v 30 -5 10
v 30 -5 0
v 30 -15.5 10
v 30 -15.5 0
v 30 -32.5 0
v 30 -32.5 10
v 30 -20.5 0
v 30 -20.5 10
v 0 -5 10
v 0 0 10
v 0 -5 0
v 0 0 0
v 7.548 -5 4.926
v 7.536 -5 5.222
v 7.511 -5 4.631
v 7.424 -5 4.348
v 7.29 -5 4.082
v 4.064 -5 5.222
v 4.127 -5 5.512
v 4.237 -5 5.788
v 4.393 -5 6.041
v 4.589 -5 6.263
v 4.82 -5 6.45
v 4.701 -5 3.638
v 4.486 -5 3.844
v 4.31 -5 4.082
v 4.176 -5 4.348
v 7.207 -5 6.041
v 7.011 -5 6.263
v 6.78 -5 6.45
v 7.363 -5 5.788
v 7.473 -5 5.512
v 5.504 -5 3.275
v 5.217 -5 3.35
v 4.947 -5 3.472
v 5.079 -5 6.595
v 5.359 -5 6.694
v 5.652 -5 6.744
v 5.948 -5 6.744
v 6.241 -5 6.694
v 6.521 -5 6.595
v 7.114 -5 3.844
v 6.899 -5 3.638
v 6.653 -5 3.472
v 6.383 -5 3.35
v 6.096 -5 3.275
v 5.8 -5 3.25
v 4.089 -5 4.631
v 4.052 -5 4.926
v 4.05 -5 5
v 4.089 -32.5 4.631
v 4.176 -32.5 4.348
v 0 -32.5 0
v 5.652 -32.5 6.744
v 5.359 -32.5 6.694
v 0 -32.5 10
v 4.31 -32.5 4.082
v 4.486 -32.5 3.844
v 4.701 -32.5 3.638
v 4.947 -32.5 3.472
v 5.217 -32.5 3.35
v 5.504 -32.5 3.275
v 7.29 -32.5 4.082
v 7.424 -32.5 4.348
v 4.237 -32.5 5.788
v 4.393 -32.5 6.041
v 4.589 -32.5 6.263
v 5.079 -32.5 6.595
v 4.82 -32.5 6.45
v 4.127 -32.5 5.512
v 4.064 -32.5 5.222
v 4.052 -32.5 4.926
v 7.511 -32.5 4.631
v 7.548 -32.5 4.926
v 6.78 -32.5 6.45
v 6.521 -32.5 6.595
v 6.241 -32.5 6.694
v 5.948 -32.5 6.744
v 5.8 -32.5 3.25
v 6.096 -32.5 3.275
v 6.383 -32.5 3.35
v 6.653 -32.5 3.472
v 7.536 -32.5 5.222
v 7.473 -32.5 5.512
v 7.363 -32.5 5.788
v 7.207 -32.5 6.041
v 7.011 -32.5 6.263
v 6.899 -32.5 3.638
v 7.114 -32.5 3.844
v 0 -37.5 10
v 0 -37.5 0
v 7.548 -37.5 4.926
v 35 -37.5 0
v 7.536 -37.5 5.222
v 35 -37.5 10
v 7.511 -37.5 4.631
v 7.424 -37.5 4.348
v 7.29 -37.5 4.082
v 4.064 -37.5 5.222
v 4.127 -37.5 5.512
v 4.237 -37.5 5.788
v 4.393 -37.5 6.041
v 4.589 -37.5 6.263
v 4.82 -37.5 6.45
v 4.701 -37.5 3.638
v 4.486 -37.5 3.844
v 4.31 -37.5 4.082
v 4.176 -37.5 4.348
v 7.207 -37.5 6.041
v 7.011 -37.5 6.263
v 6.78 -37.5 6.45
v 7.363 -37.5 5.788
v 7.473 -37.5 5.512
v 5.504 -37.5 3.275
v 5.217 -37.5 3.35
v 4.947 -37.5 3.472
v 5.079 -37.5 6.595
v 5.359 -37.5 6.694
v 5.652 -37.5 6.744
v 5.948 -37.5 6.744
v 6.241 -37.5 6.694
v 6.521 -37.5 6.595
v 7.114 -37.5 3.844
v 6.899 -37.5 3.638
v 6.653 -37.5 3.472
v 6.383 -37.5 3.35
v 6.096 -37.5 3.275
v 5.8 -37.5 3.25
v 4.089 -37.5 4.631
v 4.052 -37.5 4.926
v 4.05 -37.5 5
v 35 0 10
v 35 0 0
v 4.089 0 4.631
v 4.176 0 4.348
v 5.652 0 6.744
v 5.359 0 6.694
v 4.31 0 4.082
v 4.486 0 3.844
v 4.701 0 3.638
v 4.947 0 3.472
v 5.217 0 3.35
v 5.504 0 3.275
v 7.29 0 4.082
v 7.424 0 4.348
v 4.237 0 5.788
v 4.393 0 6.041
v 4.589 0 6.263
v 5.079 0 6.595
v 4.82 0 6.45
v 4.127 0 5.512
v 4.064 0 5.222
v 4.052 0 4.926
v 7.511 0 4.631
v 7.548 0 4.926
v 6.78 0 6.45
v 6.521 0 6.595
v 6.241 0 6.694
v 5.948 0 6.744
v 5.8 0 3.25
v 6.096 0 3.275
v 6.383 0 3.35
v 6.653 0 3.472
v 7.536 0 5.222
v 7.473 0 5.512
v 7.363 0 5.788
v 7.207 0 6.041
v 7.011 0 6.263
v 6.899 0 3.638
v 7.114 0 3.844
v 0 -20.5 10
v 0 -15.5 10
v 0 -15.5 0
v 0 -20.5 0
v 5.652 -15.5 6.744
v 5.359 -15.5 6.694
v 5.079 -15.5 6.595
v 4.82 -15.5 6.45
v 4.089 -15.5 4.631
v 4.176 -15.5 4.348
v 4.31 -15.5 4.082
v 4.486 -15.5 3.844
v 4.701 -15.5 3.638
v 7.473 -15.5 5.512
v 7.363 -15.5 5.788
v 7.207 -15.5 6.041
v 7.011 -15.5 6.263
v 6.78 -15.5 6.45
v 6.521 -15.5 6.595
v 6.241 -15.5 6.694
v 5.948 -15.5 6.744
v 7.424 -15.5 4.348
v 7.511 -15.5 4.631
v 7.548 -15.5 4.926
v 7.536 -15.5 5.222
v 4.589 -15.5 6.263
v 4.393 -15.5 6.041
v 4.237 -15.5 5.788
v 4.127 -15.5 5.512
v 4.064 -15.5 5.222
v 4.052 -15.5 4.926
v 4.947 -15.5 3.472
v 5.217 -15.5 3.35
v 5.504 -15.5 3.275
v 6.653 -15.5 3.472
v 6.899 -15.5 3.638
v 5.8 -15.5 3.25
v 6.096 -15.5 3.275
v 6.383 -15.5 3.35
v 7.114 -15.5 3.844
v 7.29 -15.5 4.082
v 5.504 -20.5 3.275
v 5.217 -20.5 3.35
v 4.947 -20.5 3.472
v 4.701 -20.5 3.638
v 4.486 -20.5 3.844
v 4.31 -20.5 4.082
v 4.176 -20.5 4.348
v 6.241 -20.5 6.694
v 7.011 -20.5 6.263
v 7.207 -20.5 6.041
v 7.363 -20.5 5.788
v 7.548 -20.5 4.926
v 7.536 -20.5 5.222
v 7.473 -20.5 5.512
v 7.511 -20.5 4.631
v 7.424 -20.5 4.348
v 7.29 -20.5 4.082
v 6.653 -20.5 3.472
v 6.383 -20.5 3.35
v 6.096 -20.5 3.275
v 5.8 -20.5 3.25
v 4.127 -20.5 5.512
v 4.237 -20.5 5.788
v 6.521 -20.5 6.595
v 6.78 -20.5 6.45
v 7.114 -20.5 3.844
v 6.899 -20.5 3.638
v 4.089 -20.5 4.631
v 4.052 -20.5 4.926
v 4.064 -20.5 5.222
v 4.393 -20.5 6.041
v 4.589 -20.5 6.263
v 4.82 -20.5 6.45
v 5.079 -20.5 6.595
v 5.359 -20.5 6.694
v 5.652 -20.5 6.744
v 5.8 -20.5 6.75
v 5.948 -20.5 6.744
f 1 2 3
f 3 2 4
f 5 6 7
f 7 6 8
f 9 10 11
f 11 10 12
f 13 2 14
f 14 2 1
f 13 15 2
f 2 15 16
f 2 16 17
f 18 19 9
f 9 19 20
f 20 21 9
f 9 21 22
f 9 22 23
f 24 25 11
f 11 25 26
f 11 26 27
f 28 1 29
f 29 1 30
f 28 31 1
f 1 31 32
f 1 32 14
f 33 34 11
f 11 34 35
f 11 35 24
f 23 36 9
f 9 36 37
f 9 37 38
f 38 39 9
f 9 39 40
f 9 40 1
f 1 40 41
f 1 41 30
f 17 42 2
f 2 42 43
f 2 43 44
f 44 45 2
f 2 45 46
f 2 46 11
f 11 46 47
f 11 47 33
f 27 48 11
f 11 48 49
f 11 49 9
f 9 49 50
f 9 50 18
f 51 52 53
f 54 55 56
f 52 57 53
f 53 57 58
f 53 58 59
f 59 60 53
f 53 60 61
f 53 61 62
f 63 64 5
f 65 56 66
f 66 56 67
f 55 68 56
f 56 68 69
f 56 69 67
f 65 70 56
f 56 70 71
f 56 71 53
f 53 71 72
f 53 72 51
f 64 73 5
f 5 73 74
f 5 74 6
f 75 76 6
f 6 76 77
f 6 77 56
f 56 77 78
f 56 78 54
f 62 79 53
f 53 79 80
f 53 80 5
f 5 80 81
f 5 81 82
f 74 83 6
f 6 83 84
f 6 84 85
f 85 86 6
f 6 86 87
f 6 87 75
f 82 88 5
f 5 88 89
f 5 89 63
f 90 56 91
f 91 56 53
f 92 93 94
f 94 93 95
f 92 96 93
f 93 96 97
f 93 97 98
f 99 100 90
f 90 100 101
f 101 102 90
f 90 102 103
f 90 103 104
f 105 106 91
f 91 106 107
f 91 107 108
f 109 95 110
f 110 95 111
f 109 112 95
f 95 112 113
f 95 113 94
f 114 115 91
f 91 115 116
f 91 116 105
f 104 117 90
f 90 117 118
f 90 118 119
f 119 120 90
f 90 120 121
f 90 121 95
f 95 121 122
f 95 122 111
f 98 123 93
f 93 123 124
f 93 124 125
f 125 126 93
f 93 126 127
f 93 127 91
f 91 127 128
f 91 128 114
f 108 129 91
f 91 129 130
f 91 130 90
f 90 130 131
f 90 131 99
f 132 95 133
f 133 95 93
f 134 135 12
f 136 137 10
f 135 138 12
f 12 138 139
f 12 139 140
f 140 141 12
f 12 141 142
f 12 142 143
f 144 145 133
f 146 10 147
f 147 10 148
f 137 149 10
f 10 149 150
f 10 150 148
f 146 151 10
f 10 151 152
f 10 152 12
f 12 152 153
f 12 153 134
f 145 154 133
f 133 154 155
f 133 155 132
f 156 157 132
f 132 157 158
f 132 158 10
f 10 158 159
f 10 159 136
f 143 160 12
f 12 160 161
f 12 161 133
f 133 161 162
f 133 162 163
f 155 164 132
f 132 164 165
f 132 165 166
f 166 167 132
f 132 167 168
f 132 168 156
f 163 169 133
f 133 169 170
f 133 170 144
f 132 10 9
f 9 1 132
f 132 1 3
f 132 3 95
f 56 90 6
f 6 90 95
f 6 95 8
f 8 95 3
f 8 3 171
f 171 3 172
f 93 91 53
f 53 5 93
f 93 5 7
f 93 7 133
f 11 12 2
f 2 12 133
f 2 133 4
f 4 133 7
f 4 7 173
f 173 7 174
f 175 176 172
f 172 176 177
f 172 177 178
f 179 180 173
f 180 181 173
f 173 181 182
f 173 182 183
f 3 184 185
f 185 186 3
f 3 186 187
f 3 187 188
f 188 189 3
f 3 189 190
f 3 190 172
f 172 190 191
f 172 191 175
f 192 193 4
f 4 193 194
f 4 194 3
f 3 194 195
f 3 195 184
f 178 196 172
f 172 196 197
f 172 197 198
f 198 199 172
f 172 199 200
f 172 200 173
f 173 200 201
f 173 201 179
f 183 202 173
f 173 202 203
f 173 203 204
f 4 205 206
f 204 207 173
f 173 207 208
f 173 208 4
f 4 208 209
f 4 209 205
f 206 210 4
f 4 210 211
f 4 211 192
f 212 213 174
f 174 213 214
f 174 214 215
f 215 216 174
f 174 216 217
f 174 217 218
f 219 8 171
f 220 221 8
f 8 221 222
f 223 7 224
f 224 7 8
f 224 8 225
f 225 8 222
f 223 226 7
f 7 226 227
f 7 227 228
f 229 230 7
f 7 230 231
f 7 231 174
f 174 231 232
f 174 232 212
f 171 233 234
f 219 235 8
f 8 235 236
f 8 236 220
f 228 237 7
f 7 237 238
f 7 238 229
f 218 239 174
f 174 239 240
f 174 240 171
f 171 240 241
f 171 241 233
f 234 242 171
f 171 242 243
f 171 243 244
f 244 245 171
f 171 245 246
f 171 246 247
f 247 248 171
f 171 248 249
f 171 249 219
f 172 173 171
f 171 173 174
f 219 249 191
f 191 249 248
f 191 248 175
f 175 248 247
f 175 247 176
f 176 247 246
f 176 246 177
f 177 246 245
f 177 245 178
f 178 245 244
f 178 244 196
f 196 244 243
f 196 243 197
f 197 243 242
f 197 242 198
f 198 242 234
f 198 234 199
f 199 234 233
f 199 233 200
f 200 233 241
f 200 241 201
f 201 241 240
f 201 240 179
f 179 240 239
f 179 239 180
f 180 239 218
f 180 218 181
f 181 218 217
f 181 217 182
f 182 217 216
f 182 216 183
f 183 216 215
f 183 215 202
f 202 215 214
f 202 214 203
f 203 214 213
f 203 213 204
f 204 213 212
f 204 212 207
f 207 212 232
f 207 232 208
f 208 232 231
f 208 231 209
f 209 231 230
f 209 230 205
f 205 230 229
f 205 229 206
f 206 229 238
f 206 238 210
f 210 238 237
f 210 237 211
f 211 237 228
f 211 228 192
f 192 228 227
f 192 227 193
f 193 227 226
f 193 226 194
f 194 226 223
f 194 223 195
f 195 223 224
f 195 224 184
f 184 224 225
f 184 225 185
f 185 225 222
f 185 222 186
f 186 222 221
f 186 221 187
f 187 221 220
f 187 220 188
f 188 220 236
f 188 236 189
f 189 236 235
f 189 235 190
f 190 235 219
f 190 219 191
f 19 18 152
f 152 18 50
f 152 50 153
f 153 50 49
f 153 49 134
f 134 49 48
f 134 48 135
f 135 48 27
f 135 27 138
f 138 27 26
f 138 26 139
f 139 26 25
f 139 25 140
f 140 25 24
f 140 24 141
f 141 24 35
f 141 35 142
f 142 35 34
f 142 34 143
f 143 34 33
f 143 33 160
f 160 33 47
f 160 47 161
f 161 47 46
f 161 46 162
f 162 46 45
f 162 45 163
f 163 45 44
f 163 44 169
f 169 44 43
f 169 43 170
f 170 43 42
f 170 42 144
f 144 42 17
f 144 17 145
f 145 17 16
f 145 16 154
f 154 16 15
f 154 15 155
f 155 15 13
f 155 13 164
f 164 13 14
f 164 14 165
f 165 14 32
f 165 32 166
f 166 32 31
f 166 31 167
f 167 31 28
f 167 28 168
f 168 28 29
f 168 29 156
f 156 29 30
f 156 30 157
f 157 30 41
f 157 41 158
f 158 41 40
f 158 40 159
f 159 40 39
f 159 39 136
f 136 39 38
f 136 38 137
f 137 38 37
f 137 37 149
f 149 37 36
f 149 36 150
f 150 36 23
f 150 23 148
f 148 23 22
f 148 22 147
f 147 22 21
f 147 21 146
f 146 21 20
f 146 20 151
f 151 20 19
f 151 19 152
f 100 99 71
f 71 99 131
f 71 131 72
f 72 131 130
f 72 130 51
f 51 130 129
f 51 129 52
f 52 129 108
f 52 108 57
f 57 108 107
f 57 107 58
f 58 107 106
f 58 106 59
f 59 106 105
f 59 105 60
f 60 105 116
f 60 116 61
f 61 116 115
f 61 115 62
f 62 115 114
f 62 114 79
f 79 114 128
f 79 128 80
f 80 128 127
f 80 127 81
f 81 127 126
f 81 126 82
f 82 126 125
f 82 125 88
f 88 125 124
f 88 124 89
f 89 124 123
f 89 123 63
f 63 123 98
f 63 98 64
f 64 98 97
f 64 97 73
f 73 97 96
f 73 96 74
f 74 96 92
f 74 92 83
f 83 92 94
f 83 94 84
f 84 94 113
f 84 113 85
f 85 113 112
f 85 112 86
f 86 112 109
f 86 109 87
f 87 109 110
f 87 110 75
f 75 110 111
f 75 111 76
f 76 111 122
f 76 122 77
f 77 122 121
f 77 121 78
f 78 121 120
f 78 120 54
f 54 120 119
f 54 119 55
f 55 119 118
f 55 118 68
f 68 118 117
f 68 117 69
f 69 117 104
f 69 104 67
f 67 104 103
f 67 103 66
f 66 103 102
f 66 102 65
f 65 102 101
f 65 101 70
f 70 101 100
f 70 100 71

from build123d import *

# Parameters (mm, degrees)
Y_KSEKLIK_EKSTR_ZYON1_DEPTH = 10
IZIM2_R                     = 1.7
KES_EKSTR_ZYON1_DEPTH       = 47
IZIM3_W                     = 10
IZIM3_H                     = 5
Y_KSEKLIK_EKSTR_ZYON2_DEPTH = 30
KES_EKSTR_ZYON2_DEPTH       = 31
KES_EKSTR_ZYON2_DEPTH_BACK  = 31
IZIM4_R                     = 1.75


with BuildPart() as part:
    # Çizim1 → Yükseklik-Ekstrüzyon1 (new body)
    with BuildSketch(Plane.XY):
        Polygon((0, 0), (35, 0), (35, -37.5), (0, -37.5), (0, -32.5), (30, -32.5), (30, -5), (0, -5), align=None)
    extrude(amount=Y_KSEKLIK_EKSTR_ZYON1_DEPTH)

    # Çizim2 → Kes-Ekstrüzyon1 (cut)
    with BuildSketch(Plane(origin=(0, 0, 0), x_dir=(1, 0, 0), z_dir=(0, 1, 0))):
        with Locations(Location((5.8, -5, 0), (0, 0, 270))):
            Circle(IZIM2_R)
    extrude(amount=-KES_EKSTR_ZYON1_DEPTH, mode=Mode.SUBTRACT)

    # Çizim3 → Yükseklik-Ekstrüzyon2 (add)
    with BuildSketch(Plane.ZY.offset(-30)):
        with Locations((5, -18)):
            Rectangle(IZIM3_W, IZIM3_H)
    extrude(amount=Y_KSEKLIK_EKSTR_ZYON2_DEPTH)

    # Çizim4 → Kes-Ekstrüzyon2 (cut, two sides: drawn at the far end of the back side and taken through both)
    with BuildSketch(Plane(origin=(0, -15.5, 0), x_dir=(1, 0, 0), z_dir=(0, 1, 0)).offset(-KES_EKSTR_ZYON2_DEPTH_BACK)):
        with Locations(Location((5.8, -5, 0), (0, 0, 90))):
            Circle(IZIM4_R)
    extrude(amount=KES_EKSTR_ZYON2_DEPTH + KES_EKSTR_ZYON2_DEPTH_BACK, mode=Mode.SUBTRACT)


solid = part.part
